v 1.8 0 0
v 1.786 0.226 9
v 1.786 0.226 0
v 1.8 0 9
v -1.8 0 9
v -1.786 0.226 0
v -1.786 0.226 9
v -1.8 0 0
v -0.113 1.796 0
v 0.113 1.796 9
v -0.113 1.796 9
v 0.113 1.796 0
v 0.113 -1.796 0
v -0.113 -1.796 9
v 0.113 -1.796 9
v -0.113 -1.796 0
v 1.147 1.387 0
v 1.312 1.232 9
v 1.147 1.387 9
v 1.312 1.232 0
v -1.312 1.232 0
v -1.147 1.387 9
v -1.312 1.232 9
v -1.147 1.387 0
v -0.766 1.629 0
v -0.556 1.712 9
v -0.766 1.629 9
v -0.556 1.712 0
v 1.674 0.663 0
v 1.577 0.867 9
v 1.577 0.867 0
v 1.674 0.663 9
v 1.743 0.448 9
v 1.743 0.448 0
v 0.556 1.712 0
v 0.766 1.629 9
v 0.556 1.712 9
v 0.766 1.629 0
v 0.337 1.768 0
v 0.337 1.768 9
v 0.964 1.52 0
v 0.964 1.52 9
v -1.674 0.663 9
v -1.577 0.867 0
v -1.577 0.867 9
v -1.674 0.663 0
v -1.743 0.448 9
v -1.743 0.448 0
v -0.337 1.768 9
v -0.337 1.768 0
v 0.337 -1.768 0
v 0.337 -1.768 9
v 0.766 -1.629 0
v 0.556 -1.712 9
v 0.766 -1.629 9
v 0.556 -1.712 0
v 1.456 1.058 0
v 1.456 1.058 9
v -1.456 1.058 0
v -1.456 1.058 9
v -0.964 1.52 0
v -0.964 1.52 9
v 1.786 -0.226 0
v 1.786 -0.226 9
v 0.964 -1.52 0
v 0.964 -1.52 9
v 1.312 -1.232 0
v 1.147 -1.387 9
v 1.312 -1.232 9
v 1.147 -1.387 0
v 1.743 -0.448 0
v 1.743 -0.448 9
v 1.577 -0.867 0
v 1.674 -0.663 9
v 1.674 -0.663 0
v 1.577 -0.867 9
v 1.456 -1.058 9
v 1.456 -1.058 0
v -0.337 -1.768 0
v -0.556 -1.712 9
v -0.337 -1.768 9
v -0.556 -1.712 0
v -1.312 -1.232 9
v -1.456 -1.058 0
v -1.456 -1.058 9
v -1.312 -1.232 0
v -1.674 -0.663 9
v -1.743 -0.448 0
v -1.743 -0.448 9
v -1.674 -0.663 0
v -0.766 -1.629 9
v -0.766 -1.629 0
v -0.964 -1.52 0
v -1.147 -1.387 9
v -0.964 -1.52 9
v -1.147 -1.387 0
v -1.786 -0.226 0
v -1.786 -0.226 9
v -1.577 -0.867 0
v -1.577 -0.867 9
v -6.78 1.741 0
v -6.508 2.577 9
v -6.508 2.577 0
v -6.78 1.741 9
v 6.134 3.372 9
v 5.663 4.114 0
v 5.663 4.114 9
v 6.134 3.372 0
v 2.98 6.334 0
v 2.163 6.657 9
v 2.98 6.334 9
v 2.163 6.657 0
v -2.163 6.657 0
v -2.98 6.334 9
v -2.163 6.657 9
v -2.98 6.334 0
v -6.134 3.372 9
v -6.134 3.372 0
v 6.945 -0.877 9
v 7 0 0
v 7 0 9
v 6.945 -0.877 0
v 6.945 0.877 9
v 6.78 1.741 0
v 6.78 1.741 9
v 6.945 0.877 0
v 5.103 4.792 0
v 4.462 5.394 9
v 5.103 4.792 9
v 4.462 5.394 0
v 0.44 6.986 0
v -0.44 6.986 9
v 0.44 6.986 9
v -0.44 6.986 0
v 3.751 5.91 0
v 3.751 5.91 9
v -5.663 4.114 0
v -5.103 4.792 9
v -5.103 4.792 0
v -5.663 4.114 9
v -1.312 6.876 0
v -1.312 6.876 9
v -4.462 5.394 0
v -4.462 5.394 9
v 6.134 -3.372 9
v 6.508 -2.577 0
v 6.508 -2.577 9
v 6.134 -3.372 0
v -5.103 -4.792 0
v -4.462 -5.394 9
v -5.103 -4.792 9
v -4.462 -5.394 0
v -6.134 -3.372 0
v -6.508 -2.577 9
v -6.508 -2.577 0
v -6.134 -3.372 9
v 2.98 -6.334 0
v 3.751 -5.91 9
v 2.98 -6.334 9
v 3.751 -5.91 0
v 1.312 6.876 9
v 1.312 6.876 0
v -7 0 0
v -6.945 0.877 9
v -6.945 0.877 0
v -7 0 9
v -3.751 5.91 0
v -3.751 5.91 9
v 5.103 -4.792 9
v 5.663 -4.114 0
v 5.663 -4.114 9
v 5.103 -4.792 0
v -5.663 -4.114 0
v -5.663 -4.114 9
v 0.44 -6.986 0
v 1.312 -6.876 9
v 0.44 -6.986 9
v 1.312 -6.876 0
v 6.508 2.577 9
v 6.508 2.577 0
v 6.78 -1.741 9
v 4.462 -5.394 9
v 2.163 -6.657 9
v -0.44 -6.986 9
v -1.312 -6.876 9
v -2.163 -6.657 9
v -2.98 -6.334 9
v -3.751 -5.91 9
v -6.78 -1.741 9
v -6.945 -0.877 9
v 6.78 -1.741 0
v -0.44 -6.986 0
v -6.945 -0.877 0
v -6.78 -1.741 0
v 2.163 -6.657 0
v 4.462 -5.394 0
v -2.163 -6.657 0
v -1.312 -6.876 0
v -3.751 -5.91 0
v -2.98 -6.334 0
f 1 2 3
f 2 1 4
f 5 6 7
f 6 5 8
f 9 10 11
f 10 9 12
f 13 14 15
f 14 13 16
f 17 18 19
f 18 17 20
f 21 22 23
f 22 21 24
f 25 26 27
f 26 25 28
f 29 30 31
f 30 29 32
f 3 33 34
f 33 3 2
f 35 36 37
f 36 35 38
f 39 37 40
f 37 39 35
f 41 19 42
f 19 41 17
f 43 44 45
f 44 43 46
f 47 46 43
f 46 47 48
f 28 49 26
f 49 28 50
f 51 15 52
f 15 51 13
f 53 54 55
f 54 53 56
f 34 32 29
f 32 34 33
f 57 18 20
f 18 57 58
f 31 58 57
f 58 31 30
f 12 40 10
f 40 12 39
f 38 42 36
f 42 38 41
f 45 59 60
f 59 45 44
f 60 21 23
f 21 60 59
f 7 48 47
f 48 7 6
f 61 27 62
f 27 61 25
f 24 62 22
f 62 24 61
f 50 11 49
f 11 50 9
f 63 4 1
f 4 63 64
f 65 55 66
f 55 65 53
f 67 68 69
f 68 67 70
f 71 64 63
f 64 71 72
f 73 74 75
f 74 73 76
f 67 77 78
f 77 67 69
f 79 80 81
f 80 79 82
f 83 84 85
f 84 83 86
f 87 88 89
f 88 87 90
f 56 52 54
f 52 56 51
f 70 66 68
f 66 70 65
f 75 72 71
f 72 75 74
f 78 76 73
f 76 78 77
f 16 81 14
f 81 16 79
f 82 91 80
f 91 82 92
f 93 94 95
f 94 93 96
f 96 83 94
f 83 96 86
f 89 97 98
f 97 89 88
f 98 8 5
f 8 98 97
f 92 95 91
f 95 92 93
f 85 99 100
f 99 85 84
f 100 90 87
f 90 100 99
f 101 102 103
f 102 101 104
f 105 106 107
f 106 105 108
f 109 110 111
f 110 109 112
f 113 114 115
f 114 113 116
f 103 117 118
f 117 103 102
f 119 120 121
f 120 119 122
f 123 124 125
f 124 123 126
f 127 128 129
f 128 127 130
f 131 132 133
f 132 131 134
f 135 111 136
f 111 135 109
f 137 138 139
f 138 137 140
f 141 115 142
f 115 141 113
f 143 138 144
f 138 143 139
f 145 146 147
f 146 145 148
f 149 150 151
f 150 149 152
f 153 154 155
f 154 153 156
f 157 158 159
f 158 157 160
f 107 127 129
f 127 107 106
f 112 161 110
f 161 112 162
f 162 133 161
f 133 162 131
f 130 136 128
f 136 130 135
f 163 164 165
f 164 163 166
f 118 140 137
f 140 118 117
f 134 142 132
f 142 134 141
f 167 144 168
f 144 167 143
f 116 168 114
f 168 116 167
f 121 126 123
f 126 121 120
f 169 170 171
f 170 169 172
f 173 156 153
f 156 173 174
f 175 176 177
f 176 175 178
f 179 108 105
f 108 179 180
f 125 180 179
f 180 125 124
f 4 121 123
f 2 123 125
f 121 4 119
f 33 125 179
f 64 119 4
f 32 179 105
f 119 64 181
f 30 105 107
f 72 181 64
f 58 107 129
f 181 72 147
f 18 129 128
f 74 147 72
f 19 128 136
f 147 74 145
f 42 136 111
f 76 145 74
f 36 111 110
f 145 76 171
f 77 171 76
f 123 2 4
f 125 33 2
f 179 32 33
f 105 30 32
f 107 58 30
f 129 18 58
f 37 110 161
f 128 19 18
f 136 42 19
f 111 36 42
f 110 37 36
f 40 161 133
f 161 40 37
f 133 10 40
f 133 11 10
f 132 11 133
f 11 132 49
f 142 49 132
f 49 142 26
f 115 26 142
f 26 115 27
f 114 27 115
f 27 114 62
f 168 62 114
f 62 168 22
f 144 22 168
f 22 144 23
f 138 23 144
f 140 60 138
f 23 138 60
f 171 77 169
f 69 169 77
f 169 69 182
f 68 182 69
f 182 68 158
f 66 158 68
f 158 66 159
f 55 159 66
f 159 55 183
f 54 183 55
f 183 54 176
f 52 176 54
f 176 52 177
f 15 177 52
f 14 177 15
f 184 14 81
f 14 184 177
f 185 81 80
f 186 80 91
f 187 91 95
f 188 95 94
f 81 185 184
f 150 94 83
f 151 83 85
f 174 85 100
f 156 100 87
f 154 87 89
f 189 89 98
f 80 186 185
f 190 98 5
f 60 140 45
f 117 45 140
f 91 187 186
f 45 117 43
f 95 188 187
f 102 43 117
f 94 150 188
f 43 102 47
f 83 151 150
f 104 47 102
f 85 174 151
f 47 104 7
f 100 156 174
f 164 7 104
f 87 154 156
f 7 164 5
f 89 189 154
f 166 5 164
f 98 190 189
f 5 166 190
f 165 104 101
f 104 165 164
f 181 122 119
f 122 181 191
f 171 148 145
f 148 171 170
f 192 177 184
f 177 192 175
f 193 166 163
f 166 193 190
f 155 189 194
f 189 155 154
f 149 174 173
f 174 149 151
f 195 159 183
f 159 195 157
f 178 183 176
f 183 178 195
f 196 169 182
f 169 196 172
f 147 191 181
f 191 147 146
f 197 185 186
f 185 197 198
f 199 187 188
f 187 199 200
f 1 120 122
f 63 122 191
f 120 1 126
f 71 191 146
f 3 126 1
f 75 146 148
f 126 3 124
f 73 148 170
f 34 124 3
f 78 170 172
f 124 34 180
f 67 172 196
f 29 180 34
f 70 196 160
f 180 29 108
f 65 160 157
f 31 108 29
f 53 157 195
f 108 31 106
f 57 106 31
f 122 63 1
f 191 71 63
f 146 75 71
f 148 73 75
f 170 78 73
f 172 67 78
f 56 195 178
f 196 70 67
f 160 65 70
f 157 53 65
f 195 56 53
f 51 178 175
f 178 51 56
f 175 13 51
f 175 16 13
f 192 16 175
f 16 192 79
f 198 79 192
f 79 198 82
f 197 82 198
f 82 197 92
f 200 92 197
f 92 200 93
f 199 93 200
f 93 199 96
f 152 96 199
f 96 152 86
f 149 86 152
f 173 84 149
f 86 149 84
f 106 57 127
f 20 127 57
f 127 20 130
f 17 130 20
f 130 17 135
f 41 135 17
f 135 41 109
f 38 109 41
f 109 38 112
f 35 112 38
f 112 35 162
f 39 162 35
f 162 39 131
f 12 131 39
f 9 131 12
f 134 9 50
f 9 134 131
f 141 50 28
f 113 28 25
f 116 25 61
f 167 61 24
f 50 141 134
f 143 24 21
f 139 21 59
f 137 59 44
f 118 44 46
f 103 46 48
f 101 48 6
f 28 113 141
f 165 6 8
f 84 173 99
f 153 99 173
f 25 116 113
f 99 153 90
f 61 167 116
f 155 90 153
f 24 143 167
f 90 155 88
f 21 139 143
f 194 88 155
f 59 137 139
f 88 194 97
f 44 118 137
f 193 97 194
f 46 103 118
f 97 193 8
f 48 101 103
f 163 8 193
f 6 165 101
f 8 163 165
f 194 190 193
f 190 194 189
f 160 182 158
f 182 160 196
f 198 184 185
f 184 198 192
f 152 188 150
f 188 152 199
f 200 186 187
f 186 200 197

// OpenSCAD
$fn = 50;


difference() {
	union() {
		cylinder(h = 9, r = 7.0000000000);
	}
	union() {
		translate(v = [0, 0, -100]) {
			cylinder(h = 200, r = 1.8000000000);
		}
		translate(v = [0, 0, -100]) {
			cylinder(h = 200, r = 1.8000000000);
		}
	}
}
